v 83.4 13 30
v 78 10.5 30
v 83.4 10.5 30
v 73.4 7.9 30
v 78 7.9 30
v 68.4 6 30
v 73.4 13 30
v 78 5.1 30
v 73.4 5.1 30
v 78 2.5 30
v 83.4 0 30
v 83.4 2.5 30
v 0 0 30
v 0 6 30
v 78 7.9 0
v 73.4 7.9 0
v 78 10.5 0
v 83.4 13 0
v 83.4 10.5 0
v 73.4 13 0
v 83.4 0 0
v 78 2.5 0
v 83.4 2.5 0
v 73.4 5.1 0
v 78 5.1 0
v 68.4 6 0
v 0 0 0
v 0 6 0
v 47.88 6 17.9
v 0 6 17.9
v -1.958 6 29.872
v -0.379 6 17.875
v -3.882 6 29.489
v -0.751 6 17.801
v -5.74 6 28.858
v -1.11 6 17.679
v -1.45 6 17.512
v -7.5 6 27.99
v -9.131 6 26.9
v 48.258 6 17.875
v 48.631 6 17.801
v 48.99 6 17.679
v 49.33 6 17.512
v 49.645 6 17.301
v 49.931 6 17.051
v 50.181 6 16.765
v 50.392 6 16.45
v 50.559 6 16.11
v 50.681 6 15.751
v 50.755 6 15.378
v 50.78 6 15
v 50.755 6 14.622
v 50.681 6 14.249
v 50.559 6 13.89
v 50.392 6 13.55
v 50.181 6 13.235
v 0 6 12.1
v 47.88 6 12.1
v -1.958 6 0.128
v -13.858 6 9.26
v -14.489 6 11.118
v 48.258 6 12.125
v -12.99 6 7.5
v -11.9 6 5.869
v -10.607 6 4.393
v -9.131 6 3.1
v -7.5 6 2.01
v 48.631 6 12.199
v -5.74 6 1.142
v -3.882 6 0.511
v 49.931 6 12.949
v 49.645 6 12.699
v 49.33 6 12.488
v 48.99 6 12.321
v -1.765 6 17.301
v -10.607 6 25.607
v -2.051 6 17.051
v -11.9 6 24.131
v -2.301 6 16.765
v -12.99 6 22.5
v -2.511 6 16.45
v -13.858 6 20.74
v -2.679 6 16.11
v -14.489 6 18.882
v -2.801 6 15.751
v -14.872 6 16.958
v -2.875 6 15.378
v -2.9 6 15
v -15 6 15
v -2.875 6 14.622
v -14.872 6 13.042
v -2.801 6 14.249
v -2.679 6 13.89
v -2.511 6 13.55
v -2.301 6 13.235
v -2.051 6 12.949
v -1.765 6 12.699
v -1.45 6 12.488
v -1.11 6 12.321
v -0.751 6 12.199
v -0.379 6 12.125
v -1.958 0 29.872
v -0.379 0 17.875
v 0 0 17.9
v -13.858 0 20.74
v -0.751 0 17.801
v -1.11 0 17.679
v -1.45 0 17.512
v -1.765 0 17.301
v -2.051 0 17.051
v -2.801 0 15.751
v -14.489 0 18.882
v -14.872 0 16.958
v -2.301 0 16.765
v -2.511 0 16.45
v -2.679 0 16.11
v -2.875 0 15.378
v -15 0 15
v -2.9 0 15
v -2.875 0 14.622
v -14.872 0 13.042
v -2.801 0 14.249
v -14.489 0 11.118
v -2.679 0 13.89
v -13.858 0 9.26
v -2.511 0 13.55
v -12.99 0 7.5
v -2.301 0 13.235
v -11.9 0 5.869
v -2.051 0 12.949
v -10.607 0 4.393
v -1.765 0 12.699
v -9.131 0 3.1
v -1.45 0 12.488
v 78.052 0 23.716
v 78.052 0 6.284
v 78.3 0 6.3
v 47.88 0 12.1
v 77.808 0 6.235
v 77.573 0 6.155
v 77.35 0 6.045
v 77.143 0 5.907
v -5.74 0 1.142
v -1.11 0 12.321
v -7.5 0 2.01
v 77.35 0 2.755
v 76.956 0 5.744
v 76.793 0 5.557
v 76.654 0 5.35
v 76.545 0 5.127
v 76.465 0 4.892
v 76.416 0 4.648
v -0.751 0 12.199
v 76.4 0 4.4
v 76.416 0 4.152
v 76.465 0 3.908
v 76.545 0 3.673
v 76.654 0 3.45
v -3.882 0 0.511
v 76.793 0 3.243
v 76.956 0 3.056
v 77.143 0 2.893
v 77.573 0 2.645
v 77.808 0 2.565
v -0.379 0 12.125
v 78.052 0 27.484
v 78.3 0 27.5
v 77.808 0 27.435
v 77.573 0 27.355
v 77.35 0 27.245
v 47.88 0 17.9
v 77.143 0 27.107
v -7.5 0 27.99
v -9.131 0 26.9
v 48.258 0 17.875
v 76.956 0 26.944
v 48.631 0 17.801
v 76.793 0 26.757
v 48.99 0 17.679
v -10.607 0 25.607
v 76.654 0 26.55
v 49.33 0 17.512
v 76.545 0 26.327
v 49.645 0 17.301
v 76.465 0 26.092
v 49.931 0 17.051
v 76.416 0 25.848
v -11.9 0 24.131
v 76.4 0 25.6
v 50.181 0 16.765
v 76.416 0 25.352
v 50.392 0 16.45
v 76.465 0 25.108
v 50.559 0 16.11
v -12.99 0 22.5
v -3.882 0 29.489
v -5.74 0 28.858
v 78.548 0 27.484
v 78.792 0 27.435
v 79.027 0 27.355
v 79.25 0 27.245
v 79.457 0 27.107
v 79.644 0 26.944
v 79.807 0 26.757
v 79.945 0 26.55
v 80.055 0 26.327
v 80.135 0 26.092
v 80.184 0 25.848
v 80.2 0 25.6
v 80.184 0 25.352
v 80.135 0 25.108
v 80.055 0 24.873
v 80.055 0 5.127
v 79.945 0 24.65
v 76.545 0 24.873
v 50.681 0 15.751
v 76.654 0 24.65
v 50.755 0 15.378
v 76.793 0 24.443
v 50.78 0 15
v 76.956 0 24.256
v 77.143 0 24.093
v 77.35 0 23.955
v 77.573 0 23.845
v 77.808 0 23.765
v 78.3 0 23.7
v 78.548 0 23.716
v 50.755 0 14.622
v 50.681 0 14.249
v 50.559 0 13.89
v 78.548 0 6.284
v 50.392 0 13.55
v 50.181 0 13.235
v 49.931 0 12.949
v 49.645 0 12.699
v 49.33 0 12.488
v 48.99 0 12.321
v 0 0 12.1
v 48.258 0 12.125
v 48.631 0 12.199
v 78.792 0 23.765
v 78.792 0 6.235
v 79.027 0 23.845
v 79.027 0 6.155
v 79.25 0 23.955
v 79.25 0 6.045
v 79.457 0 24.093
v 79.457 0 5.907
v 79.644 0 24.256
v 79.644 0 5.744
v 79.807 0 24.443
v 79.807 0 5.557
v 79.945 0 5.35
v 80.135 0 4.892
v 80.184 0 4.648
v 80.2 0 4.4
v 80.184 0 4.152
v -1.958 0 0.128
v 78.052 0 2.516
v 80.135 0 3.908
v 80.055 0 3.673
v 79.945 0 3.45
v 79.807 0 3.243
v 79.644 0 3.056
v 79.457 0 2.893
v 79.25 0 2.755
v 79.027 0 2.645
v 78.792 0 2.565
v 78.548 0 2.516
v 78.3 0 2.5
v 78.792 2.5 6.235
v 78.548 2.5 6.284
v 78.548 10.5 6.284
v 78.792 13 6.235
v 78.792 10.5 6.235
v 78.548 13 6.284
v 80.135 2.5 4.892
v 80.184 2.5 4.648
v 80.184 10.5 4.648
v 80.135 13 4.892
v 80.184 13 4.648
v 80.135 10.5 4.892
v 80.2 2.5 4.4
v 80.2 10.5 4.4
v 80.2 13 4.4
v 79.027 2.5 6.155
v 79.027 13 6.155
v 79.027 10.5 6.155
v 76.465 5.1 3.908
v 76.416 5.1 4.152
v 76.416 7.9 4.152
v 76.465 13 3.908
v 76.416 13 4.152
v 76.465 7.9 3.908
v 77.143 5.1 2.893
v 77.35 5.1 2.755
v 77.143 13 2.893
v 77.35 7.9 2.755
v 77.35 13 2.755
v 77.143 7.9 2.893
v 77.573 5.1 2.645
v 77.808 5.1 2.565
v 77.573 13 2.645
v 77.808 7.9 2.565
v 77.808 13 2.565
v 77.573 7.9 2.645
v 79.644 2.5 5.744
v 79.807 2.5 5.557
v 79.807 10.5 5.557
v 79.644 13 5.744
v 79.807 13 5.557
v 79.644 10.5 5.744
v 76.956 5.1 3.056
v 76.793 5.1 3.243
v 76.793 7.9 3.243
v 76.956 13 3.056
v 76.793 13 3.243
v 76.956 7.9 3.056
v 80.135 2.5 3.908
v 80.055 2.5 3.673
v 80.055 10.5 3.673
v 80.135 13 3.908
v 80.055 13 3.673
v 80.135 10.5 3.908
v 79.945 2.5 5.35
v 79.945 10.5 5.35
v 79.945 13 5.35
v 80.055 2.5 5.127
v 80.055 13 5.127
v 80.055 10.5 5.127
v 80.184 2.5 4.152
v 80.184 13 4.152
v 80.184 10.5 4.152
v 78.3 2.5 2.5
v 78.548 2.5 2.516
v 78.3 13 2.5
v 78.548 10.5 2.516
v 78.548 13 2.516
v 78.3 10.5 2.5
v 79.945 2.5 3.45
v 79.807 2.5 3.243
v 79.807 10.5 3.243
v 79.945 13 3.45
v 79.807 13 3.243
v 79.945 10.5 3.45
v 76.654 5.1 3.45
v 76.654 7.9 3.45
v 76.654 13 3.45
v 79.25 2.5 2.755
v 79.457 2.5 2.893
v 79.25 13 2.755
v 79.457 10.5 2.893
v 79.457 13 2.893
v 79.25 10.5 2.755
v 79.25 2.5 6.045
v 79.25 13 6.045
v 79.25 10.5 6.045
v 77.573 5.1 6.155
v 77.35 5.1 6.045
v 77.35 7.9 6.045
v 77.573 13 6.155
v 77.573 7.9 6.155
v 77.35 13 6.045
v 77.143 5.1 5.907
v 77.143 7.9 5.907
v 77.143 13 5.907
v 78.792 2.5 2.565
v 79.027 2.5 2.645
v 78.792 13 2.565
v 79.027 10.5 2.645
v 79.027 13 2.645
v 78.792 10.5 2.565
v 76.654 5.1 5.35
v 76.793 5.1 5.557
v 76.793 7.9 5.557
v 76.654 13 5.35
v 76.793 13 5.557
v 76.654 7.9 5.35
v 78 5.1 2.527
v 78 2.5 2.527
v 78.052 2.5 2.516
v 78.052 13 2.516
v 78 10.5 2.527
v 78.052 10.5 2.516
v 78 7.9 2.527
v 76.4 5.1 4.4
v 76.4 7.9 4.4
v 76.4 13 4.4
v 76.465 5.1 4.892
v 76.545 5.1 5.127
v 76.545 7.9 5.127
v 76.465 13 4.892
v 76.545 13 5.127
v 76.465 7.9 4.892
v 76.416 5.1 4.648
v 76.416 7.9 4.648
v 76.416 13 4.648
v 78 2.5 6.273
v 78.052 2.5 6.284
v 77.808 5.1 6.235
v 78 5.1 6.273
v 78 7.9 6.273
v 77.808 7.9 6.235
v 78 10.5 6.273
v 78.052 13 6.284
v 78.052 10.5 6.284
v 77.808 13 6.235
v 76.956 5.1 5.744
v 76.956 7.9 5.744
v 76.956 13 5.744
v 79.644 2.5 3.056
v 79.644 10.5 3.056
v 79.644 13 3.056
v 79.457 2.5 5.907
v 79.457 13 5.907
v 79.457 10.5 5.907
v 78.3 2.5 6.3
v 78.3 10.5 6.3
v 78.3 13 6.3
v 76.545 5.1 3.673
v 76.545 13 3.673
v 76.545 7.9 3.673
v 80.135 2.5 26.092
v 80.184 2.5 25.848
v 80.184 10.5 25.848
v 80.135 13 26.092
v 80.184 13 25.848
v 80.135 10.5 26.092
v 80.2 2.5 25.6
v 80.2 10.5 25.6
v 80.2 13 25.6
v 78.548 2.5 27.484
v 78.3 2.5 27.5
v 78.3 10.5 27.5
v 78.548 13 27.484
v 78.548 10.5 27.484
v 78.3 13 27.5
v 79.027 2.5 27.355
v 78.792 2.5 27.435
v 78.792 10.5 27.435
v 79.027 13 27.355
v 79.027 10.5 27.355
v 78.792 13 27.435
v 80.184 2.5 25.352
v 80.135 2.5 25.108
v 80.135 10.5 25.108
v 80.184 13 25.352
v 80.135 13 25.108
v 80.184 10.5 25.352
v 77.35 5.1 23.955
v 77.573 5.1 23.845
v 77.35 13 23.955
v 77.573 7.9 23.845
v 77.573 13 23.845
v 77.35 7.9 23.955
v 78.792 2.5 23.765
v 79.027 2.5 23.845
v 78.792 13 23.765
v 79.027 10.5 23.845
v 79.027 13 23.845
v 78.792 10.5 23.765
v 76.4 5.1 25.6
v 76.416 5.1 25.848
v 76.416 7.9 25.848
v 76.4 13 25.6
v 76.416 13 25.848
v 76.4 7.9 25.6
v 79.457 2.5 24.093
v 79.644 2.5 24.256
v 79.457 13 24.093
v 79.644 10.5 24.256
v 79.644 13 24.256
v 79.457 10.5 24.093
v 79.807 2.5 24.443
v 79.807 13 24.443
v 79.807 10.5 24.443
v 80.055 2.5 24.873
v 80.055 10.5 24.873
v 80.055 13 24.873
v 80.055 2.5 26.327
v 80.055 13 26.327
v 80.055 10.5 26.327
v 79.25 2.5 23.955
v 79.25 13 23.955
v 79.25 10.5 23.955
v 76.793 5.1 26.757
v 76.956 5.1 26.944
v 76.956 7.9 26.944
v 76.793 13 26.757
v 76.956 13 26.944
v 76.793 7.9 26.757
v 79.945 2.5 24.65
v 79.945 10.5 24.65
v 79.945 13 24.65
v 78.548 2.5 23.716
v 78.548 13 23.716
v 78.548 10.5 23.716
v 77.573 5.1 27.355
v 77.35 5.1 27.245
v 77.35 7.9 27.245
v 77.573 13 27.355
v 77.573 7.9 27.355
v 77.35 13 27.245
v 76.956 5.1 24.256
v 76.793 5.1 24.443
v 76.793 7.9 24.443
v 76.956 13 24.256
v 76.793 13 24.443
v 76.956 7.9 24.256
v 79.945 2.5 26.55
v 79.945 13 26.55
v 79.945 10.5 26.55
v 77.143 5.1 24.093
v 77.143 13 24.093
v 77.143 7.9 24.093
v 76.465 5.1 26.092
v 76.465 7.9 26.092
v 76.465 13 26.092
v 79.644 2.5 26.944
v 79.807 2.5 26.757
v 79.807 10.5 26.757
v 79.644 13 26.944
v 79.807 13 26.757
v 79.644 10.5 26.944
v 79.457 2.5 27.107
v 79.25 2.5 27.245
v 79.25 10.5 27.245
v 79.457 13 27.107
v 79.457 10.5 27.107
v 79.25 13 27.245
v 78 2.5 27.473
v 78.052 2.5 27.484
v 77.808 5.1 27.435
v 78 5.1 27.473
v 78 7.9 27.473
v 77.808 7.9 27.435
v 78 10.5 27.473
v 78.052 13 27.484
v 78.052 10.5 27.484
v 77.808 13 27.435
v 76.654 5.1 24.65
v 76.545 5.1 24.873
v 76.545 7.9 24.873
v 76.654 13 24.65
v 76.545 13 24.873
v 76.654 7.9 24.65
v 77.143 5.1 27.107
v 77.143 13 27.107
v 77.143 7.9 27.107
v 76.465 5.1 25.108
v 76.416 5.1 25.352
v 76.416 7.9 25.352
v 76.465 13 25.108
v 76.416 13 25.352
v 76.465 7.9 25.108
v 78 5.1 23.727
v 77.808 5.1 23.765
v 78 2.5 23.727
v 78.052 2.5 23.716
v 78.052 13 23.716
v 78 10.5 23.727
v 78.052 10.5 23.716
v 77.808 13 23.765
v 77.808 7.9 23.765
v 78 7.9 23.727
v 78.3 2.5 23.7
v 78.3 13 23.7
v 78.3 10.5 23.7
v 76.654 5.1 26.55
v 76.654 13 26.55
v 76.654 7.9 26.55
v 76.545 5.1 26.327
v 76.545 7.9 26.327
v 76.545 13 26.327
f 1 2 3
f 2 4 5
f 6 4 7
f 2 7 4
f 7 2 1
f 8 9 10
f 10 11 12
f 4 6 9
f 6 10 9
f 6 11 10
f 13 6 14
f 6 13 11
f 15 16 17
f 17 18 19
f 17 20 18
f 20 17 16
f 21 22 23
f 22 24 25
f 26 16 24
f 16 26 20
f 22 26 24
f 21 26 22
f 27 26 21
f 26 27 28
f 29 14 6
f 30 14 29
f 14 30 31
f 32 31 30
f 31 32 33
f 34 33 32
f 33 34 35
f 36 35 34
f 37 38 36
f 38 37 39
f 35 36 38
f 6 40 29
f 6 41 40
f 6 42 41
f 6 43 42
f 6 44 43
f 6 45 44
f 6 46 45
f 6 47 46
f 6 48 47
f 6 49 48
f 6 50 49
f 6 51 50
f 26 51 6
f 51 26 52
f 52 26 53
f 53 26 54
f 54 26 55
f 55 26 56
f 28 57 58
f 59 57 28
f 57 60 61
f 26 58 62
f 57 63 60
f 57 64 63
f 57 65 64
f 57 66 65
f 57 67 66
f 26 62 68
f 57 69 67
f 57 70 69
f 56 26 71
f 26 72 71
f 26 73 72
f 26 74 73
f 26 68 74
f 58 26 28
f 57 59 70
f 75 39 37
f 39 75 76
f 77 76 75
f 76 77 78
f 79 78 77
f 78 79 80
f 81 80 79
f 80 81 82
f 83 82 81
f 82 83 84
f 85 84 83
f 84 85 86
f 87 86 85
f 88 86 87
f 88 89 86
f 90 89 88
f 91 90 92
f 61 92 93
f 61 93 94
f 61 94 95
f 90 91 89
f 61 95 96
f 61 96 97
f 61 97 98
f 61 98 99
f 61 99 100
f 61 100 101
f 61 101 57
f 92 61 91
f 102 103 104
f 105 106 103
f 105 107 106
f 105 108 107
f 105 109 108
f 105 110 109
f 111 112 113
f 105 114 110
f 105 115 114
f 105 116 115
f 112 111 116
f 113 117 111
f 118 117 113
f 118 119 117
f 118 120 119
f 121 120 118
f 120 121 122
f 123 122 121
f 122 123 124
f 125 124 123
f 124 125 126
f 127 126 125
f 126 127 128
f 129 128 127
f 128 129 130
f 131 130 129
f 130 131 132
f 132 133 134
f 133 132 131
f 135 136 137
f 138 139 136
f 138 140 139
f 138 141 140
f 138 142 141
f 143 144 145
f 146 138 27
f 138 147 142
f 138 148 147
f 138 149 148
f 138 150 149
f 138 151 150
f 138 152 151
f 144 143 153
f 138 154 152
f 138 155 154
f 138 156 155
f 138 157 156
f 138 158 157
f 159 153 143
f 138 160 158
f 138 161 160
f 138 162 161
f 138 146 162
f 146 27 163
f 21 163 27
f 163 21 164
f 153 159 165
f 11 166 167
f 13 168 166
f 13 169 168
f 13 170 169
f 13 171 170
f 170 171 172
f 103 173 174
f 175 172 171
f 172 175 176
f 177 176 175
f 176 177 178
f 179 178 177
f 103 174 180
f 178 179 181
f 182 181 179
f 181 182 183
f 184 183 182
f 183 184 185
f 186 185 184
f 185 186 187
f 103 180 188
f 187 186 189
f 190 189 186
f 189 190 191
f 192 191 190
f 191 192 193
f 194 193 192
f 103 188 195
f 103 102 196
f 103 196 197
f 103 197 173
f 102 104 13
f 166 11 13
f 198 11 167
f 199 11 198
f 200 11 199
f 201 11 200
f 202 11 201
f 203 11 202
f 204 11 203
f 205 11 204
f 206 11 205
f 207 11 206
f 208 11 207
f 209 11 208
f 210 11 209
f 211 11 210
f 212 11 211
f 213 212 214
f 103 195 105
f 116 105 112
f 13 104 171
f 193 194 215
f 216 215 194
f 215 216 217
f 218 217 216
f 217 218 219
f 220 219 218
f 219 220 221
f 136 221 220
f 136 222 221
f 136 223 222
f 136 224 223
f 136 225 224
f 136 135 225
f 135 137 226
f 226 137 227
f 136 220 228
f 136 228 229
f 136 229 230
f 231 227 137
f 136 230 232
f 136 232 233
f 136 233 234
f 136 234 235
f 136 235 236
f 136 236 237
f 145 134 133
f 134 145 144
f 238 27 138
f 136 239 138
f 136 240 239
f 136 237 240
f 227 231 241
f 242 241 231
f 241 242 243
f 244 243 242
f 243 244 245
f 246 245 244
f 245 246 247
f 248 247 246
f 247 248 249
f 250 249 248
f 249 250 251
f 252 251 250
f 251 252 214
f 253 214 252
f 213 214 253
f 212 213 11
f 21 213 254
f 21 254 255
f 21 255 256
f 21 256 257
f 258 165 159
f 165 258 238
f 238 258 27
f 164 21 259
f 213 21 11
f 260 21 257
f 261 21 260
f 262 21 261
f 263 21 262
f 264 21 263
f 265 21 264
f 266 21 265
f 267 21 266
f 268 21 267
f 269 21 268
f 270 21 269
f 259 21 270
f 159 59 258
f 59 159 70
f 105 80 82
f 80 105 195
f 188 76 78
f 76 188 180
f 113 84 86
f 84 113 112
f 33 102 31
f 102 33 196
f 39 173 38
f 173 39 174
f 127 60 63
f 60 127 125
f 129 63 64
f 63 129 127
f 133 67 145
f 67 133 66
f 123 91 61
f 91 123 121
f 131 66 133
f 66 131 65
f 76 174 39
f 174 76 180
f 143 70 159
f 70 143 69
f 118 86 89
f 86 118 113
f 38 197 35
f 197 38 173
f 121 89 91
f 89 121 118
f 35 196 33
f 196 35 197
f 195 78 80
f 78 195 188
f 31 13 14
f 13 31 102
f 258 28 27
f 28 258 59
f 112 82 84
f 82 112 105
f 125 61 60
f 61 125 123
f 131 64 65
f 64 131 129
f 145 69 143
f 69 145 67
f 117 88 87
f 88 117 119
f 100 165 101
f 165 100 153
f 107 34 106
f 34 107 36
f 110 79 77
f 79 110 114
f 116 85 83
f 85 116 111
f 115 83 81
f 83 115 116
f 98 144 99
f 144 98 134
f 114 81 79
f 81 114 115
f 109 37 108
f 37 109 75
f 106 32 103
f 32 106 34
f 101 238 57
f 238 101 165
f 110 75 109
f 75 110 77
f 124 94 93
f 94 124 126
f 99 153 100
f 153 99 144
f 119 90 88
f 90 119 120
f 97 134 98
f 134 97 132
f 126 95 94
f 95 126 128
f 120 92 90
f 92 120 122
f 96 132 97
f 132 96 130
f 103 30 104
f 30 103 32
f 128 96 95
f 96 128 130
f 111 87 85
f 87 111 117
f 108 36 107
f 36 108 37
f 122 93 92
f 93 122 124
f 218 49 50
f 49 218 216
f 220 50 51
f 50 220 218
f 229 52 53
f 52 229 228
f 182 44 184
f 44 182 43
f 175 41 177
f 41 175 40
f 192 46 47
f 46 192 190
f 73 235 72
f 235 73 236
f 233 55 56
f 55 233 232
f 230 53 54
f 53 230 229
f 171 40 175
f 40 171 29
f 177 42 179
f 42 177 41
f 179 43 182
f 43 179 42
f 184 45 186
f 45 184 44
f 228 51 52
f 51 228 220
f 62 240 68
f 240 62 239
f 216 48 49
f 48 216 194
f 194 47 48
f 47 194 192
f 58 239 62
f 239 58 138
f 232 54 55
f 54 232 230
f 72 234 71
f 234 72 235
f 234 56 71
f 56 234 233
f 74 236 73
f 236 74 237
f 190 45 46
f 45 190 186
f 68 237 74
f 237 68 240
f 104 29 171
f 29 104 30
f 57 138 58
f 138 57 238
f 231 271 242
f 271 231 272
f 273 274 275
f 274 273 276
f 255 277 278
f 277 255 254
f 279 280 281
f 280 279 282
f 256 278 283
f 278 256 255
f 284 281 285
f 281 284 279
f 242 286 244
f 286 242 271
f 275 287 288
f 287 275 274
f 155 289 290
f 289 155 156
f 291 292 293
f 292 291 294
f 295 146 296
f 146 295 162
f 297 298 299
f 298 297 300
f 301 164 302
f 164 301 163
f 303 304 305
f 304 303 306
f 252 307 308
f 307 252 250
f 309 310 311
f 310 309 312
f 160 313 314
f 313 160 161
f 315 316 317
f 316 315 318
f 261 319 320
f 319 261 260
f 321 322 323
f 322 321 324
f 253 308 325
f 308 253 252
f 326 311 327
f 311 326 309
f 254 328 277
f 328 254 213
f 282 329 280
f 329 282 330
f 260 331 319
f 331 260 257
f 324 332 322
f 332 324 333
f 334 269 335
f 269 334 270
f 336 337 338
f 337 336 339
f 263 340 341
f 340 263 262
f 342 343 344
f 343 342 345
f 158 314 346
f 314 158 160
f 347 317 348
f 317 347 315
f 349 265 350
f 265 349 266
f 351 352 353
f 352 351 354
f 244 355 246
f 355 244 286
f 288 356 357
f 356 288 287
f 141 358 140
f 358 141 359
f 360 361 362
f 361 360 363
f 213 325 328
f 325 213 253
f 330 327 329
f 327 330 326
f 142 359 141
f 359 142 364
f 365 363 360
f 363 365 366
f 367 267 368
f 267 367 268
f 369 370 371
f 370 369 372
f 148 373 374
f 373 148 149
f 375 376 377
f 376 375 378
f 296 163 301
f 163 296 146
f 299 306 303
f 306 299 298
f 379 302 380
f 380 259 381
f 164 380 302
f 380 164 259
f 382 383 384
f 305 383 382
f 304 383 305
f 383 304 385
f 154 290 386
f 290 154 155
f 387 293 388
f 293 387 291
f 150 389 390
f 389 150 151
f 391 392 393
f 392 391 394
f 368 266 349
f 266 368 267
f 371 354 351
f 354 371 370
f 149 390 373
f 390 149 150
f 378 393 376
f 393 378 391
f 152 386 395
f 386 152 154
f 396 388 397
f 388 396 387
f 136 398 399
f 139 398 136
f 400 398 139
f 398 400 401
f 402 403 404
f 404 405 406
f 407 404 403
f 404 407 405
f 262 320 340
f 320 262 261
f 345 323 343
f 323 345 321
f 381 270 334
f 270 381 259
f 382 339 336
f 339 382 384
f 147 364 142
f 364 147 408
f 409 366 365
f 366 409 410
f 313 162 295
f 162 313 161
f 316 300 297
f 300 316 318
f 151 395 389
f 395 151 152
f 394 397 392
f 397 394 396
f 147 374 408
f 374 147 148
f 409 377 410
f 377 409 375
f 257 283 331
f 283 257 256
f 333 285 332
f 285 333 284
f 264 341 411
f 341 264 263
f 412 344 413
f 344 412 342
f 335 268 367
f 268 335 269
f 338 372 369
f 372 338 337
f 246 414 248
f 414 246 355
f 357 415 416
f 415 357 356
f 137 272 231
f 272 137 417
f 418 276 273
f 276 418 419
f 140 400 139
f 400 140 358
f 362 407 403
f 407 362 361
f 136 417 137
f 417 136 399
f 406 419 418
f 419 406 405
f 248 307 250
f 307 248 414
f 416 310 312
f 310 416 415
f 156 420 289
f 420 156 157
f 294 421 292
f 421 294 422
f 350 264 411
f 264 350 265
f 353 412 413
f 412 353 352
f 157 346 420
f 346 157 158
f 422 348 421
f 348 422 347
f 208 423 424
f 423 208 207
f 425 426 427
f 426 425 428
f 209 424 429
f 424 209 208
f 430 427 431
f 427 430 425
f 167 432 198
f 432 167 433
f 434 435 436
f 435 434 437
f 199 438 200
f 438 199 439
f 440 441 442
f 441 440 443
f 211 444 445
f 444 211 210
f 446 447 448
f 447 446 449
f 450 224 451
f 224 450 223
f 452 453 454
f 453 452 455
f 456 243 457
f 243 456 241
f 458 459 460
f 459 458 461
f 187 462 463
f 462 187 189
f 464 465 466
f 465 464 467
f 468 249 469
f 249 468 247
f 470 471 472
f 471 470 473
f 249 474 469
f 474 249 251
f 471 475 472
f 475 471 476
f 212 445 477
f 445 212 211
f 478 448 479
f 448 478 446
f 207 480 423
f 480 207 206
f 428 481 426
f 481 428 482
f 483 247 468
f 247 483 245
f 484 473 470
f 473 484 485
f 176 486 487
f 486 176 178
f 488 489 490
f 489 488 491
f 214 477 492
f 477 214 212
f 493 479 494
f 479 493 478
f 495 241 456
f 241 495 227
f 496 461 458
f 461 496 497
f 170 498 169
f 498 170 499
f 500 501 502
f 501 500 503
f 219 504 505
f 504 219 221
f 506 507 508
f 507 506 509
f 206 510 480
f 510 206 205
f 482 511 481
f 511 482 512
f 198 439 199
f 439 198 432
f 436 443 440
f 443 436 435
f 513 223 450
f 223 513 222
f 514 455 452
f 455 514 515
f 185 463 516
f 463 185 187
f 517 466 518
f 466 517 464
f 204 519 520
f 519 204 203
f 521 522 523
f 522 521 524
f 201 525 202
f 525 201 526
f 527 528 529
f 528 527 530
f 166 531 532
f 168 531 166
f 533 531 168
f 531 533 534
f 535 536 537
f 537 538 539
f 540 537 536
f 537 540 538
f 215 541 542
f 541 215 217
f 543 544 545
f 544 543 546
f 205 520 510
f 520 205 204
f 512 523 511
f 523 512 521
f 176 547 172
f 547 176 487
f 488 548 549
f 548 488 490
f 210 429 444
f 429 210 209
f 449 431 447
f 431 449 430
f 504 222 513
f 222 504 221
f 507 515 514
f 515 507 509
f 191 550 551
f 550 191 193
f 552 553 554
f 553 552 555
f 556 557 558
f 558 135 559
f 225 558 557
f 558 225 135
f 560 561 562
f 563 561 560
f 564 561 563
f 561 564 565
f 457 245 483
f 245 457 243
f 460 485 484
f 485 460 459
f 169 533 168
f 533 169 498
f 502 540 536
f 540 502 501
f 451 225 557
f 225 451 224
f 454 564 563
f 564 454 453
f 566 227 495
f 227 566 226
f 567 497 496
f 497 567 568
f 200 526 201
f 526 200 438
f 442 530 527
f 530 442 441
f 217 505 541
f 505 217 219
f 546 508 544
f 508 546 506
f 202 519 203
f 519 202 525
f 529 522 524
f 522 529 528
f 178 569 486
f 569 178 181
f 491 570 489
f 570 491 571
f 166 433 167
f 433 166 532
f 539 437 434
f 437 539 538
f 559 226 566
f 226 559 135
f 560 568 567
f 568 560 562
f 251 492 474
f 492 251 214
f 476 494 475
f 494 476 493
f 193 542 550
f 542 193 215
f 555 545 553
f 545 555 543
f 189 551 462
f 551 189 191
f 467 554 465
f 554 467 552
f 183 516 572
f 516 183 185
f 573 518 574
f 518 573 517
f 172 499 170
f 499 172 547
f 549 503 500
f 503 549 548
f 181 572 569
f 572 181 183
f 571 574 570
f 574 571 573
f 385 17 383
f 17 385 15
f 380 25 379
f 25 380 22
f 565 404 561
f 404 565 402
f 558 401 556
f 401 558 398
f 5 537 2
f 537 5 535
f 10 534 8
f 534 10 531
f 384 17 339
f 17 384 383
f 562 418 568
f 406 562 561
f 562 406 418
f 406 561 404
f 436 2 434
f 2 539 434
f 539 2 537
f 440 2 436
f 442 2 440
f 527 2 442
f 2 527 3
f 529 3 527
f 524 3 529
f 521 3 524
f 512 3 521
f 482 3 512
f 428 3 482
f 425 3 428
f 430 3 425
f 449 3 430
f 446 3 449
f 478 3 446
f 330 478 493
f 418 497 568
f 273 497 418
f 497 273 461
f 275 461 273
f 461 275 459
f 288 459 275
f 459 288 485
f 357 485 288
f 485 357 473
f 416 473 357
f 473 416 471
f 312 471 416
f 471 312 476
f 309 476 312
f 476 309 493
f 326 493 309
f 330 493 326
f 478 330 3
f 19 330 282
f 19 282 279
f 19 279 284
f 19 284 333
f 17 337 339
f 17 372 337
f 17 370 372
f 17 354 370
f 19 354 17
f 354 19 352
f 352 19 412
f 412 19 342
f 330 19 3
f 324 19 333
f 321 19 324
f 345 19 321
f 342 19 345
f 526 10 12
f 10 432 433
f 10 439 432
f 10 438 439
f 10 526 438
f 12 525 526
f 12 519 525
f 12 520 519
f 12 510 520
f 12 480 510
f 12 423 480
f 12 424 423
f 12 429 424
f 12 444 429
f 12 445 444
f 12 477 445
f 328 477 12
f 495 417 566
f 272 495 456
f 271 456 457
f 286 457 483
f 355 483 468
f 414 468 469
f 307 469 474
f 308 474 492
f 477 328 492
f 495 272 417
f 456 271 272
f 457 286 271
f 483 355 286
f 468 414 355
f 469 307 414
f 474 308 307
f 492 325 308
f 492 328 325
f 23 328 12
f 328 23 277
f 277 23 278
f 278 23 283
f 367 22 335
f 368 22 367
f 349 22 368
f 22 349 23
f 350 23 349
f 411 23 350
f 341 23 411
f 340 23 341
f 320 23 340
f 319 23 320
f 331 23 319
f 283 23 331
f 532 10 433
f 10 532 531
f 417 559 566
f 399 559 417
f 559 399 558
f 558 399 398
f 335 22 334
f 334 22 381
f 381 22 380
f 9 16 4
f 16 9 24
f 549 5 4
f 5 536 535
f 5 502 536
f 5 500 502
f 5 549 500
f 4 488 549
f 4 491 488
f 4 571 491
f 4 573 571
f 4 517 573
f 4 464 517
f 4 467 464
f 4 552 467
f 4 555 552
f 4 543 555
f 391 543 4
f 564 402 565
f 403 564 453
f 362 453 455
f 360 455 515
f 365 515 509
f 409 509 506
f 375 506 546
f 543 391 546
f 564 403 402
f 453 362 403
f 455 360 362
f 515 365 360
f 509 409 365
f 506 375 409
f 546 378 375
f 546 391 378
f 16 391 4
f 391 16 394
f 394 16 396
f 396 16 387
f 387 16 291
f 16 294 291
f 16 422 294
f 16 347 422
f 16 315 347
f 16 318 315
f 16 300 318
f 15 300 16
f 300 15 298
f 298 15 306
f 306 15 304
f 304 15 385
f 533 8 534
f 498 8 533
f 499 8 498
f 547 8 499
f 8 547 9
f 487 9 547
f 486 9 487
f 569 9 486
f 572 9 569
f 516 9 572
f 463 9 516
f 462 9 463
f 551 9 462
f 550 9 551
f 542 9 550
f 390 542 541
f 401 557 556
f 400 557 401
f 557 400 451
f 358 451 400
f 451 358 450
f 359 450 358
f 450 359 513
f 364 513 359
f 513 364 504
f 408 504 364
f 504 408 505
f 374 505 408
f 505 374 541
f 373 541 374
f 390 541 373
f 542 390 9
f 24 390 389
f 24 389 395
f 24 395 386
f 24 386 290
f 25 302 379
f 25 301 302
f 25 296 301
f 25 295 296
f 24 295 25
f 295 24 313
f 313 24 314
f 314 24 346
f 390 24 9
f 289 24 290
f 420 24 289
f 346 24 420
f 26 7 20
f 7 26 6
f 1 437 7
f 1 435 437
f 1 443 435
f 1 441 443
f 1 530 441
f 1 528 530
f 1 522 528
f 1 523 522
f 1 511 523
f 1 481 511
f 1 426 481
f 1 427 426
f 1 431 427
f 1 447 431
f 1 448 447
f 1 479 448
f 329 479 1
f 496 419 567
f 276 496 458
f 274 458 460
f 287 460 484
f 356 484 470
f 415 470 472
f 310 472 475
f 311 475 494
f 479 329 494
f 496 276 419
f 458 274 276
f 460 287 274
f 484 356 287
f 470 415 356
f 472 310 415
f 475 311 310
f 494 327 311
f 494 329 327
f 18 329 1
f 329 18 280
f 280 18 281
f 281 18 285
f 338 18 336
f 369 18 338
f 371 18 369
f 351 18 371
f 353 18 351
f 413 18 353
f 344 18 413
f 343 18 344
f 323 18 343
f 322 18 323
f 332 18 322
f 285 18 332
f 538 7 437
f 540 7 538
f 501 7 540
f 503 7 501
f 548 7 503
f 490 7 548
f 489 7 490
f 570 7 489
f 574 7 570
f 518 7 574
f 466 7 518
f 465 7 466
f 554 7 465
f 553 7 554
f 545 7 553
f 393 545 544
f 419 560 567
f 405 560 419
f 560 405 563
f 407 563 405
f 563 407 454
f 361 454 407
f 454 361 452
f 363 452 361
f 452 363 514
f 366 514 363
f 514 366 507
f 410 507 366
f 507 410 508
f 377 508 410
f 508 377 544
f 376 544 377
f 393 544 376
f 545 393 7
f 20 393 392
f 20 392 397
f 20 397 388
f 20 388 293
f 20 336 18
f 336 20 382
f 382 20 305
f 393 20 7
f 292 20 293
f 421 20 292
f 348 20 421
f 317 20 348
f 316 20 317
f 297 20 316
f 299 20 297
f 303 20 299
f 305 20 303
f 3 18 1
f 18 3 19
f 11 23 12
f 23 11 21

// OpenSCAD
// All dimensions are in millimeters

$fn = 48;
printgap = 0.4; // filament printing offset

// Parameters here
weld_conn_height = 15;
weld_con_diam = 43;

thick = 6;
height = 30;
length = 90*0.76;
r_hole = (5/2) + printgap; // screw size for distance adjustment slot

loop_connect_thick = 13;
wedge_len = 5;
loop_connect_len = 10;
connect_gap = 2.1+printgap+0.3; // gap between HMD steel loops
hmd_wedge = [[length, 0], [length+wedge_len, 0], [length+wedge_len+1, 0], [length+wedge_len+1, loop_connect_thick], [length+wedge_len, loop_connect_thick], [length, thick]];

screwholes = (3/2)+printgap; // screw size for connection through steel loops on HMD

looprod_diam = (2/2); // thickness of steel loop rods
screw_edgespacing = 5; // 5mm from edge closest to loop
looprod_inside_gap = 4; // for placing screw holes centered

endwiden = looprod_diam+looprod_inside_gap+printgap;

module adjustmentbar(){
	cube([length,thick,height]);
		translate([0,(thick/2),height/2]){
			rotate(90,[1,0,0]){
				cylinder(thick,height/2,height/2,true); // height, bottom radius, top r
			}
		}
}
module extruded_polywedge(){
	linear_extrude(height=height, center=false, convexity=1){
		polygon(points=hmd_wedge, convexity=1);
	}
}
// slot for HMD distance adjustment
module adjust_slot(length, maxdist){
	translate([0,thick/2,height/2]){
		rotate(90,[1,0,0]){
			cylinder(thick*20, r_hole, r_hole, true);
		}
	}
	translate([maxdist*length,thick/2,height/2]){
		rotate(90,[1,0,0]){
			cylinder(thick*20, r_hole, r_hole, true);
		}
	}
	translate([0,-thick/2,(height/2)-r_hole]){
		cube([maxdist*length, thick*2, r_hole*2]);
	}
}
module hmd_fork_connect(){
	translate([length+wedge_len, 0, 0]){
		cube([loop_connect_len, loop_connect_thick, height]); // length of wedge end mount
	}
}
module screw_holes(screw_diam, total_height){
	rotate(90,[1,0,0]){
		cylinder(total_height+10, screw_diam, screw_diam, true);
	}
}
module screw_array(){
	translate([(length+wedge_len+screwholes+looprod_diam+(looprod_inside_gap/2)), loop_connect_thick/2, screwholes+(screw_edgespacing/2)]){
		screw_holes(screw_diam=screwholes, total_height=loop_connect_thick);
		translate([0,0,height-((screwholes*2)+screw_edgespacing)]){
			screw_holes(screw_diam=screwholes, total_height=loop_connect_thick);
		}
	}
}
module weldmount_bracket(){
	translate([0,(thick/2)-1.4,height/2]){
		rotate(90,[1,0,0]){
			cylinder(weld_conn_height, weld_con_diam, weld_con_diam, true);
		}
	}
}
module endjointgap(){
	translate([(length+wedge_len+loop_connect_len-(endwiden)), (loop_connect_thick/2)+(-8/2), -5]){
		cube([endwiden+10, 8, height+10]);
	}
	translate([length+wedge_len, (loop_connect_thick/2)+(-connect_gap/2), -5/2]){
		cube([loop_connect_len+5, connect_gap, height+5]); // 4mm gap in loop, loop rod diameter 2mm
	}
}

difference(){
	difference(){
		union(){
			difference(){
				union(){
					adjustmentbar();
					extruded_polywedge();
					hmd_fork_connect();
				}
				adjust_slot(0.7, length);
			}
		}
		screw_array();
	}
	endjointgap();
}
